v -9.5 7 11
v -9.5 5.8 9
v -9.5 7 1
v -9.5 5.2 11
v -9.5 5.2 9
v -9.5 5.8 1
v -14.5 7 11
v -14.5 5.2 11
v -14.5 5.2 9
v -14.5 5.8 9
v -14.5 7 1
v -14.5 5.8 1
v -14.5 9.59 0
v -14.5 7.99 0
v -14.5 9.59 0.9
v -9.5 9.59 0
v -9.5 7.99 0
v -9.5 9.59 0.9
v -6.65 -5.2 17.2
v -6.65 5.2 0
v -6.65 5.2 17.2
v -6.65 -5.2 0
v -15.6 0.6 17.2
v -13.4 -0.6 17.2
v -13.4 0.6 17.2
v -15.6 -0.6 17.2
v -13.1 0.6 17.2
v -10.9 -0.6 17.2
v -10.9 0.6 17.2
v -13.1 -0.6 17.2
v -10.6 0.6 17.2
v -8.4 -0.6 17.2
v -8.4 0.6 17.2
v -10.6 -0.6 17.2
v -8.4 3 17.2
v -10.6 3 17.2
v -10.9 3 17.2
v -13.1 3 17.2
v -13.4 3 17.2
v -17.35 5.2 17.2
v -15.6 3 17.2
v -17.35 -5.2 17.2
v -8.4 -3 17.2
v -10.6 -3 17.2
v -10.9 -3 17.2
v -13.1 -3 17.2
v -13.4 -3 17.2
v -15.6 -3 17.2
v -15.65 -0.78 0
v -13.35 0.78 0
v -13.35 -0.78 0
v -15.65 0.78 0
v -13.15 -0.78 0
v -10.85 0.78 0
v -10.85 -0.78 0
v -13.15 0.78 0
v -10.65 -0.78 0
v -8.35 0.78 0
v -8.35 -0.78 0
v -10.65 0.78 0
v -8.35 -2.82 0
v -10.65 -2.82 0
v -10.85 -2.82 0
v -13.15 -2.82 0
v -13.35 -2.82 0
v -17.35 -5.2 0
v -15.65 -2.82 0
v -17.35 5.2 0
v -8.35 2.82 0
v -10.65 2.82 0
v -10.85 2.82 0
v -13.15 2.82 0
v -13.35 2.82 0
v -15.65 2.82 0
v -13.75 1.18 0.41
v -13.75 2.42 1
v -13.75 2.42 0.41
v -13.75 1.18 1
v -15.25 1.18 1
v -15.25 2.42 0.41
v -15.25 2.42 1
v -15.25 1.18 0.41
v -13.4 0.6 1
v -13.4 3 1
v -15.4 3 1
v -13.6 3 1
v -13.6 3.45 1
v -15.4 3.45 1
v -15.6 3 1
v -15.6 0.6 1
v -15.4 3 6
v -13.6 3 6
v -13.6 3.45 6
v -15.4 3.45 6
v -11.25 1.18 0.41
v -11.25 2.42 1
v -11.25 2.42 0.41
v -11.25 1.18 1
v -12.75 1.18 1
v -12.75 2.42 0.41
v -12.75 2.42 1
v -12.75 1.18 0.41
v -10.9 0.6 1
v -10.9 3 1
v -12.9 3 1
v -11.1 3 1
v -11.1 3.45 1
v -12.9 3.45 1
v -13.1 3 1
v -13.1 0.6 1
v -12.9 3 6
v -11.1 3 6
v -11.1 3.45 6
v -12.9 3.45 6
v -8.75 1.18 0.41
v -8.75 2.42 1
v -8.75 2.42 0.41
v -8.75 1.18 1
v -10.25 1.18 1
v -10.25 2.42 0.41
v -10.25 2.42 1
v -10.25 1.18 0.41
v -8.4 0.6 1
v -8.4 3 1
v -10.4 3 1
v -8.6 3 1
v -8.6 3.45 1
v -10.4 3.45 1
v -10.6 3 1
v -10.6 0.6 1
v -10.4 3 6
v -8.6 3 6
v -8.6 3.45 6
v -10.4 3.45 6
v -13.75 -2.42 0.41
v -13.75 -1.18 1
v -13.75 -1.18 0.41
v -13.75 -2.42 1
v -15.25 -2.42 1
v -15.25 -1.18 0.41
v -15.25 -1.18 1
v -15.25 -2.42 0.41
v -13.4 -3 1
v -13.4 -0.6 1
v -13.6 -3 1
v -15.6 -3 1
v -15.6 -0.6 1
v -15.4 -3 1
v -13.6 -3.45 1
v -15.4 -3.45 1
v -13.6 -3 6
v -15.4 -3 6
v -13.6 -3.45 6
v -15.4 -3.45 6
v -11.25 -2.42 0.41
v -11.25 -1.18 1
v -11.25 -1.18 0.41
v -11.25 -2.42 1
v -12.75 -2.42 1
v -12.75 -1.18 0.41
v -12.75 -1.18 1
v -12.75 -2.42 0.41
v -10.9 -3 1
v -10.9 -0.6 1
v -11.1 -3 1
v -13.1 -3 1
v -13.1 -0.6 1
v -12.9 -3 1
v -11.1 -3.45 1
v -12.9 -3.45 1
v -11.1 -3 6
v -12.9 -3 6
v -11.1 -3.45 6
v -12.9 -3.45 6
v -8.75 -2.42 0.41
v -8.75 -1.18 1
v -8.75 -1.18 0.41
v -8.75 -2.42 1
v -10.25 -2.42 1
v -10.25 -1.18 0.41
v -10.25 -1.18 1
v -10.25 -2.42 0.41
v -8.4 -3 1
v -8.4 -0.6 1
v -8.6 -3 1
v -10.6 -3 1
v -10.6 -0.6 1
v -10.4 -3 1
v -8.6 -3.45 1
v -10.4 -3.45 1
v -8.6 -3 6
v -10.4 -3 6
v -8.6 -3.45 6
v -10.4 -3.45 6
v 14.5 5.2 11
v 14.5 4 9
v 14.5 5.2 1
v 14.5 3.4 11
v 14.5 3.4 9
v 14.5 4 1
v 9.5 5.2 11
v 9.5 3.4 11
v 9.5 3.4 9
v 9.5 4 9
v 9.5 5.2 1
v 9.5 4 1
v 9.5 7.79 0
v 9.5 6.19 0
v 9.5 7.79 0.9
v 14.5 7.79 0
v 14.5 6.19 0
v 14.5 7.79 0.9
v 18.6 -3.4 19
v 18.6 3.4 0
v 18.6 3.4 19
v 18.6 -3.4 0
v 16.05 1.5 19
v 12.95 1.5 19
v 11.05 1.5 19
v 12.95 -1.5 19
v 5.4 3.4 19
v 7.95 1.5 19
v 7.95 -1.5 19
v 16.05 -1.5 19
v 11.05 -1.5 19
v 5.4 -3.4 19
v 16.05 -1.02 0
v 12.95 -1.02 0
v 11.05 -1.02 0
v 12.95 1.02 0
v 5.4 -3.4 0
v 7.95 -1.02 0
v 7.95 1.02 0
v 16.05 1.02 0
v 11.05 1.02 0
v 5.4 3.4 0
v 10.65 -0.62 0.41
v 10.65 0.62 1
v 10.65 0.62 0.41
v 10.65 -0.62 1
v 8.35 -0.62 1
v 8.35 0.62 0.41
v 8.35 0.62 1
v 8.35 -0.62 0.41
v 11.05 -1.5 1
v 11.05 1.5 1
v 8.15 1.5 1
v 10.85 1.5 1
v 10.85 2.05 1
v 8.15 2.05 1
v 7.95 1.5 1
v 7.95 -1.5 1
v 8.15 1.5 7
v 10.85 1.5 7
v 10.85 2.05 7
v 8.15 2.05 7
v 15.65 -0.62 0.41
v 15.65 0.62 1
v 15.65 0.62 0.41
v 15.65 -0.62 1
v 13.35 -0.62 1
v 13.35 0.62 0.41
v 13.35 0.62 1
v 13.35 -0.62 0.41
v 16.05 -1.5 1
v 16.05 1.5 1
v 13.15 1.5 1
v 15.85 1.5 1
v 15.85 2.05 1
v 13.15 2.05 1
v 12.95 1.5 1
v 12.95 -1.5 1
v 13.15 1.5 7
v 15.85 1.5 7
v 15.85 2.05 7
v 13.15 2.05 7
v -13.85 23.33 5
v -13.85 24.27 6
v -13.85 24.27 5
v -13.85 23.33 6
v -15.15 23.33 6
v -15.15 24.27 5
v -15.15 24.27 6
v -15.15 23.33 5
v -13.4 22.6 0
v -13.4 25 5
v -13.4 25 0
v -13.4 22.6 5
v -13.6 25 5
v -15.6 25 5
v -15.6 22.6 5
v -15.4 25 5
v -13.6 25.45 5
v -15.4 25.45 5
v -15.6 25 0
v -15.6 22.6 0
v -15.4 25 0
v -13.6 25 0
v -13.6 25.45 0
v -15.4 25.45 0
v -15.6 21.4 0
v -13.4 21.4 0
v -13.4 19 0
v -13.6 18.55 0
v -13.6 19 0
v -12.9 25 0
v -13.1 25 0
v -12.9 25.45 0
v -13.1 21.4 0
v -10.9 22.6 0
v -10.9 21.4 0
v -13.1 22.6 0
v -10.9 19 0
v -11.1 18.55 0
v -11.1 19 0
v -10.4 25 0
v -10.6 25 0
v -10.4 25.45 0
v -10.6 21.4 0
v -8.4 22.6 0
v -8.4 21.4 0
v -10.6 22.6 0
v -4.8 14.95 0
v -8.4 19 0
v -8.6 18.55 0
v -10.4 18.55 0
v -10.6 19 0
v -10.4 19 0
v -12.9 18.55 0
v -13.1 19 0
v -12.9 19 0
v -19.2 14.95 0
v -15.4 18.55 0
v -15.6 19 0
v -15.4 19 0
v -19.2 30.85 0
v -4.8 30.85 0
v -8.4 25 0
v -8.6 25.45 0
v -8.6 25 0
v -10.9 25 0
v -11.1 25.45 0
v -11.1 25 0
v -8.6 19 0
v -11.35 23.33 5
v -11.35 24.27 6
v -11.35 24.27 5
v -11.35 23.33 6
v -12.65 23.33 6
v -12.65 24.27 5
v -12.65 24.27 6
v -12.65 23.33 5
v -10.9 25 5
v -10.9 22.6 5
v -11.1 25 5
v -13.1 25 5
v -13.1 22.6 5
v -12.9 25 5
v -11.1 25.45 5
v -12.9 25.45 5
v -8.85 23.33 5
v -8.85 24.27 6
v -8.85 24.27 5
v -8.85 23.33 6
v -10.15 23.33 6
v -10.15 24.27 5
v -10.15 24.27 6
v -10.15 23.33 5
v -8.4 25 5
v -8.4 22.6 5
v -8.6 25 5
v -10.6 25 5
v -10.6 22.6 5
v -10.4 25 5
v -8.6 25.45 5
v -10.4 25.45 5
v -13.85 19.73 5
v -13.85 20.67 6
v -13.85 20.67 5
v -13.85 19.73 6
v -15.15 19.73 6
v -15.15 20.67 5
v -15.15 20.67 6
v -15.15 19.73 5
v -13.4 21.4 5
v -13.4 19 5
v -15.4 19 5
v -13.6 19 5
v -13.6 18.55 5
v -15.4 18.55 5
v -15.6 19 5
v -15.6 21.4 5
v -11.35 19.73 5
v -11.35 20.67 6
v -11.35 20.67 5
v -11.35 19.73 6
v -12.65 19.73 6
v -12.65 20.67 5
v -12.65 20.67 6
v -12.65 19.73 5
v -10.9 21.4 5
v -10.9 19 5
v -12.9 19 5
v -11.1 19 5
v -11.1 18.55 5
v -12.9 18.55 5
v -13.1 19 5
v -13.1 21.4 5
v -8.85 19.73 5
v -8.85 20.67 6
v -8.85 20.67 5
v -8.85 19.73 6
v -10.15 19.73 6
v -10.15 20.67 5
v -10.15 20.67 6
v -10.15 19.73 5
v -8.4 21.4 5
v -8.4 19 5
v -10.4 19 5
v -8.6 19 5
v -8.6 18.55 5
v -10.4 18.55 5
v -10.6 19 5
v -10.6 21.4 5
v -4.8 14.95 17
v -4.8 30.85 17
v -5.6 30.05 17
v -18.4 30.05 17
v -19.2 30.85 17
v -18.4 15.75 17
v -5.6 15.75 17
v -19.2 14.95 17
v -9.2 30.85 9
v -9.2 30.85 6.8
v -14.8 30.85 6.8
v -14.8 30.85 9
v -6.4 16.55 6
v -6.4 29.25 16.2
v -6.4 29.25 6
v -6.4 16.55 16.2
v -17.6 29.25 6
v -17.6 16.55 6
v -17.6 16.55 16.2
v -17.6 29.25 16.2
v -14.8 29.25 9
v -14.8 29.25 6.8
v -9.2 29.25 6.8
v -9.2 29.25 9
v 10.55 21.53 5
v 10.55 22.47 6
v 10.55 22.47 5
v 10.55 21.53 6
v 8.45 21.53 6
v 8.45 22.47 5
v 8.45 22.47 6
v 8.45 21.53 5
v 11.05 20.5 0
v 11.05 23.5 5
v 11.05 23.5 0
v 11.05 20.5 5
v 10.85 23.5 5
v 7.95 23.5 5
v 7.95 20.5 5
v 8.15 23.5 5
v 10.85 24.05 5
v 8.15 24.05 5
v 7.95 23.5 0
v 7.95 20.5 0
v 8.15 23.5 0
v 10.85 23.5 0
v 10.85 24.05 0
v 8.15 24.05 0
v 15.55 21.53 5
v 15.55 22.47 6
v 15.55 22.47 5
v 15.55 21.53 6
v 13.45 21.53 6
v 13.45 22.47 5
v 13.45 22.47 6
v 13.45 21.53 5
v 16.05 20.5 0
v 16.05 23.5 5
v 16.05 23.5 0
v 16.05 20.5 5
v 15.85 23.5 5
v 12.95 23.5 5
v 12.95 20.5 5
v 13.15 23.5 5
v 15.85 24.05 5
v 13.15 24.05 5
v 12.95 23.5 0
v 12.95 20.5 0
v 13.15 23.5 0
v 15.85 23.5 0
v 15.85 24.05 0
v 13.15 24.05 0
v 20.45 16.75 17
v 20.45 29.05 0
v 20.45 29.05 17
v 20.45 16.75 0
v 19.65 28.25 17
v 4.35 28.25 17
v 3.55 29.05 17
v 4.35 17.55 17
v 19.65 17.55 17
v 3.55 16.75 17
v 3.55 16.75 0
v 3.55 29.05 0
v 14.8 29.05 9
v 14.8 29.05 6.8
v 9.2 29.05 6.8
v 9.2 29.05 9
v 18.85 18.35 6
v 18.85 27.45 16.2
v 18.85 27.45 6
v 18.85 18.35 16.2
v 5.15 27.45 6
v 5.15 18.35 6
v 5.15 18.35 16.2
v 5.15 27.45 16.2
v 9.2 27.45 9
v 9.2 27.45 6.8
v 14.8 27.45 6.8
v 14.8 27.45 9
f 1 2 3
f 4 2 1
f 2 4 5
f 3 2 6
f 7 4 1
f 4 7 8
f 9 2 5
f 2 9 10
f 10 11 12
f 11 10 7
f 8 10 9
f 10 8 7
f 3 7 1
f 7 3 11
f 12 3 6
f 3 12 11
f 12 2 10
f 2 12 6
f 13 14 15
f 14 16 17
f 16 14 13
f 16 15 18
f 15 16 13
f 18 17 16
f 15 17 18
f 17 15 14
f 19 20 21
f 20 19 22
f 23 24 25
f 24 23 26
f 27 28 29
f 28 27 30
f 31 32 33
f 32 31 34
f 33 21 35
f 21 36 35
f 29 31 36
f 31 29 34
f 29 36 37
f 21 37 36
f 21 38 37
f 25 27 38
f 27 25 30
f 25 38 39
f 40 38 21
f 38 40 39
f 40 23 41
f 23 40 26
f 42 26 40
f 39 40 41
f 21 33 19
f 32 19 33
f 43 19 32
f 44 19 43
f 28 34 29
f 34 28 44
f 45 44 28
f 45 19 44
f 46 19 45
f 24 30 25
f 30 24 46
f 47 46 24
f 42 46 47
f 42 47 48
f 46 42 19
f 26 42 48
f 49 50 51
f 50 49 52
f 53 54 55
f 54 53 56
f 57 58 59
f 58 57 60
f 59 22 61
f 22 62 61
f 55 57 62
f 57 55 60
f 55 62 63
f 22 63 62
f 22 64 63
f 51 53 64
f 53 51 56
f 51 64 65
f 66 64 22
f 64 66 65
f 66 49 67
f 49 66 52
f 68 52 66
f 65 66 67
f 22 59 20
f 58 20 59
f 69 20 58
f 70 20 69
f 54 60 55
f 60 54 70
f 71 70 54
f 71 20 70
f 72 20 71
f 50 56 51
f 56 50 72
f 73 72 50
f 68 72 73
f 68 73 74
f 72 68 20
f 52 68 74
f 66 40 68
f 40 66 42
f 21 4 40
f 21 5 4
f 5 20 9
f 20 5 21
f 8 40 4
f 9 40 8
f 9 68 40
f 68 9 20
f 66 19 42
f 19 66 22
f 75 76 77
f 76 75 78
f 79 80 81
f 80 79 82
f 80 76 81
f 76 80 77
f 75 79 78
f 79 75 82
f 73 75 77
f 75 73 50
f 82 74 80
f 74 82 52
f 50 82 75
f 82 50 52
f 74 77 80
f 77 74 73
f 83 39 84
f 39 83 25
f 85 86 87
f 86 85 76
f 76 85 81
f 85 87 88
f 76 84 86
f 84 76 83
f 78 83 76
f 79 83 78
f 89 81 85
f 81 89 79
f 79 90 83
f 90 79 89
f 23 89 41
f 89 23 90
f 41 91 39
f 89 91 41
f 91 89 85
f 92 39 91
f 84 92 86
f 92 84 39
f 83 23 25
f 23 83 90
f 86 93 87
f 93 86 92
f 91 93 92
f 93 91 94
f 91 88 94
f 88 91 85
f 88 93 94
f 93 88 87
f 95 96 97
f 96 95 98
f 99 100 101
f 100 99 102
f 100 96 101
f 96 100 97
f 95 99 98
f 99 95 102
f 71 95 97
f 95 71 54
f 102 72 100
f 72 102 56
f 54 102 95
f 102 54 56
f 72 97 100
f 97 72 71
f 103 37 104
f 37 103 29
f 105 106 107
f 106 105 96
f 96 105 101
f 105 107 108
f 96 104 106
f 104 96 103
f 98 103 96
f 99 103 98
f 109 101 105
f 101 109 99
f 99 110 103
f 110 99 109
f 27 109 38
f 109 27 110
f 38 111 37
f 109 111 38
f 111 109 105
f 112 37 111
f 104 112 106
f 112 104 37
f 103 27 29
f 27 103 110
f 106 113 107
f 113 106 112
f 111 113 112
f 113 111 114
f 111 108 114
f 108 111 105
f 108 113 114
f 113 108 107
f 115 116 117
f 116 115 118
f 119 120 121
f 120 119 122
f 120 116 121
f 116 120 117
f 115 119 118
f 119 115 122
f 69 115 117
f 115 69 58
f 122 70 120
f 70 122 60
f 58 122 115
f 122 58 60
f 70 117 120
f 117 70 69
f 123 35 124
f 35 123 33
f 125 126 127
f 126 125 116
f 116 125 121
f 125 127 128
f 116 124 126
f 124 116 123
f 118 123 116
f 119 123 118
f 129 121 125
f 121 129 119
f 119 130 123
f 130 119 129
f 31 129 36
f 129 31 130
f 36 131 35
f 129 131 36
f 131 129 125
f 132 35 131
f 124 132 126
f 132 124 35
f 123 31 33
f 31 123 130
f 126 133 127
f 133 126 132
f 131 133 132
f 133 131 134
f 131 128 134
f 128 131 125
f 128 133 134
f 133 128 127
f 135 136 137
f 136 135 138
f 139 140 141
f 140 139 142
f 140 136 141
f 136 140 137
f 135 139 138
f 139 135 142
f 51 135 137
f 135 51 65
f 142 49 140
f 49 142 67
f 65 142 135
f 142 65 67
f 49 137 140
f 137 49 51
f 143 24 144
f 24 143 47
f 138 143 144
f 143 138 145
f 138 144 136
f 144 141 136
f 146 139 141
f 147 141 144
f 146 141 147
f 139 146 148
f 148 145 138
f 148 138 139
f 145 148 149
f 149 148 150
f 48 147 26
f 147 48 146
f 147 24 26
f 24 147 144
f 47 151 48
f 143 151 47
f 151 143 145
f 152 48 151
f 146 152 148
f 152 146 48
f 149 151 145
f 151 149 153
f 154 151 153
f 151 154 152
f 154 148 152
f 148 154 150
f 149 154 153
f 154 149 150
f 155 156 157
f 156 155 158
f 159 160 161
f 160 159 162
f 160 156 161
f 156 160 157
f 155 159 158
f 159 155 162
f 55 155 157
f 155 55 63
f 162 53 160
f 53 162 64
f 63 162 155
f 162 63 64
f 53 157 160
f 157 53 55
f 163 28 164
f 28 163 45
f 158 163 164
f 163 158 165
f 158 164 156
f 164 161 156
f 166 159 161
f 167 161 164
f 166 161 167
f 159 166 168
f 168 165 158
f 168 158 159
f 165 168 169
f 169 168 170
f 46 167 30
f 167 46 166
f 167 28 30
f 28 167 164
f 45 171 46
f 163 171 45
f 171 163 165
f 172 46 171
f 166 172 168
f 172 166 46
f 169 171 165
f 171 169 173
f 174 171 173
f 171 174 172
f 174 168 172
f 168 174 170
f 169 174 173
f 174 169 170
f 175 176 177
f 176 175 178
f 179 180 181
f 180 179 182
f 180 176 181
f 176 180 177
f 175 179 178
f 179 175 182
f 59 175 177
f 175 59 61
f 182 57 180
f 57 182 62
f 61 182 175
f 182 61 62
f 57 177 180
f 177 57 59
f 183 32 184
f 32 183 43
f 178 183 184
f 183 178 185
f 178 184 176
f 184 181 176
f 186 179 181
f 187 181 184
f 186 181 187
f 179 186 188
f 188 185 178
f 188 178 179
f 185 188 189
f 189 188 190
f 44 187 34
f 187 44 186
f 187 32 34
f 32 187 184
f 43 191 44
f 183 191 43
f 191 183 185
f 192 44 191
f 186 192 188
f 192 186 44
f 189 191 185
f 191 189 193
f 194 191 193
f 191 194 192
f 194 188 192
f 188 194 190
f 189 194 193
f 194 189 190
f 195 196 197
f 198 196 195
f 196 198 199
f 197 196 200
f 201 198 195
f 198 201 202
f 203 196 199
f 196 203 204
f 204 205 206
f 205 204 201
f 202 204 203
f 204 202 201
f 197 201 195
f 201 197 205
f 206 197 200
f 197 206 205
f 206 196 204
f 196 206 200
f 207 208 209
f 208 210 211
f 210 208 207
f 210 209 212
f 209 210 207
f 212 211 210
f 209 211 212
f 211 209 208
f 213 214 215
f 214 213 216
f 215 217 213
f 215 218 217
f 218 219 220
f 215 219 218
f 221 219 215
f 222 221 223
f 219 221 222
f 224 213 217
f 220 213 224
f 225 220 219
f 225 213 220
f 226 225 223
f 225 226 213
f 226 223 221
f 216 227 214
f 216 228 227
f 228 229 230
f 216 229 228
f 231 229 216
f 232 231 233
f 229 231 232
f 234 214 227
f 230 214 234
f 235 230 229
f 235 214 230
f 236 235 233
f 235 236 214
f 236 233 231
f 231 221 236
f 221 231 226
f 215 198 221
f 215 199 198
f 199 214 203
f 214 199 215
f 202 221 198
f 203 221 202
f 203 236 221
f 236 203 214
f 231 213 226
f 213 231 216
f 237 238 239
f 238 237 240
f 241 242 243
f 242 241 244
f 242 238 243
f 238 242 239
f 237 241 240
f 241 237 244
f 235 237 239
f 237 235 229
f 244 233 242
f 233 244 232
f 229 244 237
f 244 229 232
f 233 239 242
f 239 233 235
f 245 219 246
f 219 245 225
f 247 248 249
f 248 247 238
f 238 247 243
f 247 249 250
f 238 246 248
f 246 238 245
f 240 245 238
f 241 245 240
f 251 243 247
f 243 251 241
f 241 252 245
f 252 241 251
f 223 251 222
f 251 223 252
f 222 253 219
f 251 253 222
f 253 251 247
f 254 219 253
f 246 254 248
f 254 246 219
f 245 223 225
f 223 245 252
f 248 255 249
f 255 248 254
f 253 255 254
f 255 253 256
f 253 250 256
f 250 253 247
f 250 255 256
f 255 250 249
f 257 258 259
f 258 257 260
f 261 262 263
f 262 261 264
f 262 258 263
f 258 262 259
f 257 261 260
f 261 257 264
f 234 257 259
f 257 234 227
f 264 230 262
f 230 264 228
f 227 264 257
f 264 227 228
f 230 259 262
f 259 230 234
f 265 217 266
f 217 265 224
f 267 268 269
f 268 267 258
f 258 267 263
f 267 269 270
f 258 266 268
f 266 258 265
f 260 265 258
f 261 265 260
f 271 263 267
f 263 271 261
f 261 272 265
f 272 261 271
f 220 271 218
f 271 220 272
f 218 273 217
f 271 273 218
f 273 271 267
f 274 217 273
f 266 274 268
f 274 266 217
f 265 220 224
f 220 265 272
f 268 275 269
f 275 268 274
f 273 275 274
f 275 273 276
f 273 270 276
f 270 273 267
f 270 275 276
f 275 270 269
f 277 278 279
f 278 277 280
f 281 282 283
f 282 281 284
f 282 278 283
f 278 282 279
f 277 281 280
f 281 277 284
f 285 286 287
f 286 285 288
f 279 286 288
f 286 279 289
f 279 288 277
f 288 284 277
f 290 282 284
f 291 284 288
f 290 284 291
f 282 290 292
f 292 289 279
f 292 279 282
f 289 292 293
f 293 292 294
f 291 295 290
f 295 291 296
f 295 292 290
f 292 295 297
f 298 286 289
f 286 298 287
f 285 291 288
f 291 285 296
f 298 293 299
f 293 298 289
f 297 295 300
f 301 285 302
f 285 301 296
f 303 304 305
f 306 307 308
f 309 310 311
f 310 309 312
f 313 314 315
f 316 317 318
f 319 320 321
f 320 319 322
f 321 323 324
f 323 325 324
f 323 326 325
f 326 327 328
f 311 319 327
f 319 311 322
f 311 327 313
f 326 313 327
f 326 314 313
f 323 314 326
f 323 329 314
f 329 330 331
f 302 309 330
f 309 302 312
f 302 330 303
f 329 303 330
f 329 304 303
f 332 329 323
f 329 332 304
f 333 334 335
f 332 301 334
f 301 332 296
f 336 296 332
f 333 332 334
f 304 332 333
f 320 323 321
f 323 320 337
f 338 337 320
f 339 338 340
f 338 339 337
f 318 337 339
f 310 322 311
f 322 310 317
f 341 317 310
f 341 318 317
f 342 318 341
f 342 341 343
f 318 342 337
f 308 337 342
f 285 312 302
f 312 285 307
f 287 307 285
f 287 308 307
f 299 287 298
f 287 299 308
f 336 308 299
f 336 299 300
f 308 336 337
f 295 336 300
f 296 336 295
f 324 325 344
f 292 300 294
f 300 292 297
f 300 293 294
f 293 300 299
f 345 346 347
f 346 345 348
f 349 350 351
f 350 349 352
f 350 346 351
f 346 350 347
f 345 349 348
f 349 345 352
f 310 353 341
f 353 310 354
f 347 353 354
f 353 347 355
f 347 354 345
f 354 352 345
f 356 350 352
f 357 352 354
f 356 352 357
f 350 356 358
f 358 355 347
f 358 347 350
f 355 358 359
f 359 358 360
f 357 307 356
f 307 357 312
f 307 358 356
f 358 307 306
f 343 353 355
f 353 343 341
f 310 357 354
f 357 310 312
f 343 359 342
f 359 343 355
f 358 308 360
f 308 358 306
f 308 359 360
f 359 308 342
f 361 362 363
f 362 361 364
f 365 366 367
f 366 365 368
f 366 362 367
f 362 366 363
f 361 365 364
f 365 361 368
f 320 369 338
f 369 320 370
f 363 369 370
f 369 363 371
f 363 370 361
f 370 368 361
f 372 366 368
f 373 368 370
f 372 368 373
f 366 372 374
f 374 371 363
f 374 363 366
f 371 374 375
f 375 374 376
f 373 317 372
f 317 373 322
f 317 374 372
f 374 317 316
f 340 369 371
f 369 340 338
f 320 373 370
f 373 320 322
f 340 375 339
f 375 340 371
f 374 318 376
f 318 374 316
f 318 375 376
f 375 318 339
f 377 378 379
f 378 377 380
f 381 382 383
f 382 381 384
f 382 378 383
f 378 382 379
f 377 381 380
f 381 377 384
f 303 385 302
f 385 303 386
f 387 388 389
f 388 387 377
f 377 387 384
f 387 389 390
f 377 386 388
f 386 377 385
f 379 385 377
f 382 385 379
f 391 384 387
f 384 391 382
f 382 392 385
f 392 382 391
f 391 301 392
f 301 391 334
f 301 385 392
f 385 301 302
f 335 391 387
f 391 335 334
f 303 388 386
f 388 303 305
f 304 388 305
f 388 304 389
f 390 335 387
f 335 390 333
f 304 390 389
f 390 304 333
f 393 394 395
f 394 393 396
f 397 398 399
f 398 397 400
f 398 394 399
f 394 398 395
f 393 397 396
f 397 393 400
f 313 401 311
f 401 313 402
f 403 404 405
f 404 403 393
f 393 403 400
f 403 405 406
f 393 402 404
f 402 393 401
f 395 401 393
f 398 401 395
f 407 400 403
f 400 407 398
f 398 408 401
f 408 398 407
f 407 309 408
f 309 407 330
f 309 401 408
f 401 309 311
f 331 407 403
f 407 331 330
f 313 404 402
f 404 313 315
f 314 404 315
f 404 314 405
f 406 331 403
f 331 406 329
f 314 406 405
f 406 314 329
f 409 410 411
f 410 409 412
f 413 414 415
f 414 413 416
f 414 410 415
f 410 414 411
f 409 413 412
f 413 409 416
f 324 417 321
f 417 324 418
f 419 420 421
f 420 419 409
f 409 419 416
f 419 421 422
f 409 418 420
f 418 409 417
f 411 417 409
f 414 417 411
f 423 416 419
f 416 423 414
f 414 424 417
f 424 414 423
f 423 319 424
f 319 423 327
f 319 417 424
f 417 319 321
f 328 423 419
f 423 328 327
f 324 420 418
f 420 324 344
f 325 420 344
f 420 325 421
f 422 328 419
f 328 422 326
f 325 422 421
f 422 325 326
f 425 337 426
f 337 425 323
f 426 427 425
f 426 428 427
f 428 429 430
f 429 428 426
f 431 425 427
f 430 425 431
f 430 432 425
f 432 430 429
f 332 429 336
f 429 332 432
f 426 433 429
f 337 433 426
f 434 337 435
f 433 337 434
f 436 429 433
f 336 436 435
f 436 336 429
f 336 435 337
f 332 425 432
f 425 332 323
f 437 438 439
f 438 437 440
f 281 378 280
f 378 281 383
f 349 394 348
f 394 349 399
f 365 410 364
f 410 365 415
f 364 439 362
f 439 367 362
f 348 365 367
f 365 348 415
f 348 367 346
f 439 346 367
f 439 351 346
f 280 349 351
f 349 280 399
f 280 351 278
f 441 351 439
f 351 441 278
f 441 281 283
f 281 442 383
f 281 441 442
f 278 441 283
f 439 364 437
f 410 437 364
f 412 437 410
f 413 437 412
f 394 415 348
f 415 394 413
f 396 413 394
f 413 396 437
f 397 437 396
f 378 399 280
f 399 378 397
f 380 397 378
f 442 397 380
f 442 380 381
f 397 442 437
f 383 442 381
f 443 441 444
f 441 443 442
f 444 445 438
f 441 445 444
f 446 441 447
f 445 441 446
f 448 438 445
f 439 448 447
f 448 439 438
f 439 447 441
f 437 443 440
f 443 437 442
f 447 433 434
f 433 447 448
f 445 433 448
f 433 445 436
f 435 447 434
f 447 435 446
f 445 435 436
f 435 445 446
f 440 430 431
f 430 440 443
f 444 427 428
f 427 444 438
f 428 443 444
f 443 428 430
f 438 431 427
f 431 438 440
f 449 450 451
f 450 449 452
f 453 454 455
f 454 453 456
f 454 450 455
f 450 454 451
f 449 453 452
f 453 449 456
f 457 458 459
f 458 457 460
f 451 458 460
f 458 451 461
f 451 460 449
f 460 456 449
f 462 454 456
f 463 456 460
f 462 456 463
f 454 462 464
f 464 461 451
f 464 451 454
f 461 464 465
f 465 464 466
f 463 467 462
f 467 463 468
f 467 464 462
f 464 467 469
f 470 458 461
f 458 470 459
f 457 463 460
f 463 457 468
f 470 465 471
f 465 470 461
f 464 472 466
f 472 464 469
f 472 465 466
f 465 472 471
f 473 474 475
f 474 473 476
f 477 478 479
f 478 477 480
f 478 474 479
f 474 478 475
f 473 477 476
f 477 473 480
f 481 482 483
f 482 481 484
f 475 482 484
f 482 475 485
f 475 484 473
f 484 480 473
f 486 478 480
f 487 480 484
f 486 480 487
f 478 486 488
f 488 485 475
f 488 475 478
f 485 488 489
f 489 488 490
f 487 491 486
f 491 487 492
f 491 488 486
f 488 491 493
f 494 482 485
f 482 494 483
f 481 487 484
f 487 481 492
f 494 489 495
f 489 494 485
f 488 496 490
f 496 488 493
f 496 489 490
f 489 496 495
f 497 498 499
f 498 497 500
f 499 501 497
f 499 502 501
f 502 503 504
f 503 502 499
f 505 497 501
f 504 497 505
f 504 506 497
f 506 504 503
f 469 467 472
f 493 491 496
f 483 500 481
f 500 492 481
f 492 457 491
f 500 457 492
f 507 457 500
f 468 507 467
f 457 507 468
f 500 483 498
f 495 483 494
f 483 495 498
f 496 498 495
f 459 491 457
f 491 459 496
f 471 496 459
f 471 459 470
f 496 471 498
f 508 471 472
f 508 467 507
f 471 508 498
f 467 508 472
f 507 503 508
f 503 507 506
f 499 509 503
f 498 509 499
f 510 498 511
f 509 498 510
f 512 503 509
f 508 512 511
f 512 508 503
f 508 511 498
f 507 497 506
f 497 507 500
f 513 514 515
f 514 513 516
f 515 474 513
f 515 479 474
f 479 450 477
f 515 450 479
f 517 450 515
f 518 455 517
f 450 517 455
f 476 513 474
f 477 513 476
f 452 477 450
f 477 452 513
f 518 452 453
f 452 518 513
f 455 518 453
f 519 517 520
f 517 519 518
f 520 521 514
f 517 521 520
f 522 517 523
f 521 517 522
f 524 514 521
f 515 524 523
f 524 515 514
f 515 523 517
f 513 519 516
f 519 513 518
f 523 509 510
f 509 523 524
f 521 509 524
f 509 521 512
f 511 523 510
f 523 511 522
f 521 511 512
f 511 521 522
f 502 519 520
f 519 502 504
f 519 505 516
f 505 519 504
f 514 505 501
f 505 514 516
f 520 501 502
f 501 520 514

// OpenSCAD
// file: sections.scad
// =====================================================================
//  Connector section definitions — 1KZ-TE engine ECU (KZJ90/95, KZN130/165/185)
//
//  The 1KZ-TE Denso ECU uses three harness plugs: A (22), B (16), C (26)
//  = 64 pins, which matches the TE/AMP 176122-6 64-way hybrid header used
//  on several mid-90s Toyota ECUs. Pin numbering below is row-major,
//  row 0 = pins 1..n/2 (top row, latch side), viewed from the WIRE side of
//  the OEM harness plug.  [MEASURE] against the real plug before printing.
//
//  Pin codes:  0 = no cavity   1 = 040 Multilock   2 = 070 Multilock
//
//  section = [ name, cols, rows, pitch_x, pitch_y, pinmap, keys ]
//    keys = list of [ x_from_left_edge, width, face ]   face: 0 top, 1 bottom
// =====================================================================

function s_name(s)  = s[0];
function s_cols(s)  = s[1];
function s_rows(s)  = s[2];
function s_px(s)    = s[3];
function s_py(s)    = s[4];
function s_map(s)   = s[5];
function s_keys(s)  = s[6];

// Plug A — 22 pin. Power / switched inputs (+B, BATT, IGSW, STA, A/C, SP1, TAC...)
SEC_A = [ "A22", 11, 2, 2.5, 3.6,
  [ [1,1,1,1,1,1,1,1,1,1,1],
    [1,1,1,1,1,1,1,1,1,1,1] ],
  [ [3.0, 1.6, 0] ] ];

// Plug B — 16 pin. Analog sensors (VA, PIM, THA, THW, THF, VRP, VRT, VC, E2...)
SEC_B = [ "B16", 8, 2, 2.5, 3.6,
  [ [1,1,1,1,1,1,1,1],
    [1,1,1,1,1,1,1,1] ],
  [ [6.0, 1.6, 0] ] ];

// Plug C — 26 pin. Pump/crank signals and actuator drives
// (NE+/-, TDC+/-, SPV, TCV, SVR, EGR, S/TH, E01/E02 ...)
SEC_C = [ "C26", 13, 2, 2.5, 3.6,
  [ [1,1,1,1,1,1,1,1,1,1,1,1,1],
    [1,1,1,1,1,1,1,1,1,1,1,1,1] ],
  [ [3.0, 1.6, 1], [20.0, 1.6, 0] ] ];

SECTIONS = [ SEC_A, SEC_B, SEC_C ];
// file: params.scad
// =====================================================================
//  ECU interposer — shared parameters
//
//  EVERY dimension marked [MEASURE] is an estimate from TE/AMP Multilock
//  catalogue data, not from the actual KZJ95 connector. Print
//  fit_coupon.scad first, compare against the real plug, then edit here.
//  All units mm.
// =====================================================================

$fn = 32;

// ---- Printer / process -------------------------------------------------
clr        = 0.15;   // per-side clearance on terminal cavities (resin: 0.10, FDM: 0.20)
slide_clr  = 0.25;   // per-side clearance for sliding fits (plug-in-shroud, tenons)
min_wall   = 0.6;    // thinnest wall the process can hold (resin 0.5, 0.4-nozzle FDM 0.8)

// ---- Terminal families ---------------------------------------------------
// Toyota mid-90s Denso ECUs use TE/AMP "Multilock" hybrid headers:
//   040 series: 1.0 x 0.64 mm tab, 2.5 mm pitch  (signal)
//   070 series: 1.8 x 0.64 mm tab                (power / solenoid drive)
// Receptacle body sizes below are [MEASURE] — catalogue tab sizes are firm,
// the stamped body envelope is not published.
//
// index:            0        1       2        3       4         5          6          7
//                  tab_w   tab_t   body_w   body_h  body_len  lance_h   lance_from  tab_len
//                                                             (spring)  _front      (male, exposed)
T040 = [            1.00,   0.64,   1.90,    2.10,   14.2,     0.45,     5.0,        6.5 ];
T070 = [            1.80,   0.64,   2.80,    2.70,   16.0,     0.55,     6.0,        7.5 ];

function tab_w(t)      = t[0];
function tab_t(t)      = t[1];
function body_w(t)     = t[2];
function body_h(t)     = t[3];
function body_len(t)   = t[4];
function lance_h(t)    = t[5];
function lance_ff(t)   = t[6];
function tab_len(t)    = t[7];

function term(code) = code == 2 ? T070 : T040;

// ---- Housing geometry ----------------------------------------------------
face_wall      = 1.0;   // front wall of female plug (tab entry holes go through it)
shell_wall     = 1.6;   // outer wall of plugs / shrouds
plug_len_extra = 2.0;   // female plug length beyond terminal body length
shroud_depth   = 11.0;  // [MEASURE] how deep the OEM plug sits in the ECU header
shroud_floor   = 6.0;   // floor thickness that holds male tabs (needs > lance step)

// Latch (cantilever on the plug, ramp in the shroud) — [MEASURE] all
latch_w        = 5.0;
latch_len      = 9.0;
latch_t        = 1.2;
latch_hook     = 0.9;   // hook height
latch_gap      = 0.6;   // flex gap under the arm

// Chamber between the two ends (wire pass-through + tap pick-off)
chamber_len    = 26.0;  // room for pigtail loops + tap splices
chamber_wall   = 1.8;
tap_slot_w     = 14.0;  // exit slot for tap ribbon / JST-SH cable
tap_slot_h     = 4.0;
screw_d        = 2.2;   // M2 self-tapper pilot
screw_head_d   = 4.2;

// Tap-board bay (separate enclosure, ribbon-linked to each section)
tapbox_pcb     = [60, 40, 1.6];   // custom tap PCB (see docs/ECU_TAP_ARCHITECTURE.md)
tapbox_parts_h = 11.0;            // tallest component above PCB (ESP32-S3 module + shield can)
tapbox_wall    = 2.0;
tapbox_inlets  = 3;               // one ribbon inlet per connector section
// main file
// =====================================================================
//  Fit coupon — print this FIRST (~10 min on resin).
//
//  Small female + male blocks for each terminal family. Use real
//  terminals to check: tab entry, body slide-in, lance click, pull-out
//  force, and pitch against the OEM plug. Adjust params.scad
//  (clr, T040/T070 body sizes, pitch) until it feels like the OEM part.
// =====================================================================

include <interposer.scad>

COUPON_040 = [ "040", 3, 2, 2.5, 3.6, [[1,1,1],[1,1,1]], [] ];
COUPON_070 = [ "070", 2, 1, 5.0, 3.6, [[2,2]], [] ];

translate([-12, 0, 0]) female_plug(COUPON_040, with_flange = false);
translate([ 12, 0, 0]) female_plug(COUPON_070, with_flange = false);
translate([-12, 22, 0]) male_shroud(COUPON_040, with_flange = false);
translate([ 12, 22, 0]) male_shroud(COUPON_070, with_flange = false);
